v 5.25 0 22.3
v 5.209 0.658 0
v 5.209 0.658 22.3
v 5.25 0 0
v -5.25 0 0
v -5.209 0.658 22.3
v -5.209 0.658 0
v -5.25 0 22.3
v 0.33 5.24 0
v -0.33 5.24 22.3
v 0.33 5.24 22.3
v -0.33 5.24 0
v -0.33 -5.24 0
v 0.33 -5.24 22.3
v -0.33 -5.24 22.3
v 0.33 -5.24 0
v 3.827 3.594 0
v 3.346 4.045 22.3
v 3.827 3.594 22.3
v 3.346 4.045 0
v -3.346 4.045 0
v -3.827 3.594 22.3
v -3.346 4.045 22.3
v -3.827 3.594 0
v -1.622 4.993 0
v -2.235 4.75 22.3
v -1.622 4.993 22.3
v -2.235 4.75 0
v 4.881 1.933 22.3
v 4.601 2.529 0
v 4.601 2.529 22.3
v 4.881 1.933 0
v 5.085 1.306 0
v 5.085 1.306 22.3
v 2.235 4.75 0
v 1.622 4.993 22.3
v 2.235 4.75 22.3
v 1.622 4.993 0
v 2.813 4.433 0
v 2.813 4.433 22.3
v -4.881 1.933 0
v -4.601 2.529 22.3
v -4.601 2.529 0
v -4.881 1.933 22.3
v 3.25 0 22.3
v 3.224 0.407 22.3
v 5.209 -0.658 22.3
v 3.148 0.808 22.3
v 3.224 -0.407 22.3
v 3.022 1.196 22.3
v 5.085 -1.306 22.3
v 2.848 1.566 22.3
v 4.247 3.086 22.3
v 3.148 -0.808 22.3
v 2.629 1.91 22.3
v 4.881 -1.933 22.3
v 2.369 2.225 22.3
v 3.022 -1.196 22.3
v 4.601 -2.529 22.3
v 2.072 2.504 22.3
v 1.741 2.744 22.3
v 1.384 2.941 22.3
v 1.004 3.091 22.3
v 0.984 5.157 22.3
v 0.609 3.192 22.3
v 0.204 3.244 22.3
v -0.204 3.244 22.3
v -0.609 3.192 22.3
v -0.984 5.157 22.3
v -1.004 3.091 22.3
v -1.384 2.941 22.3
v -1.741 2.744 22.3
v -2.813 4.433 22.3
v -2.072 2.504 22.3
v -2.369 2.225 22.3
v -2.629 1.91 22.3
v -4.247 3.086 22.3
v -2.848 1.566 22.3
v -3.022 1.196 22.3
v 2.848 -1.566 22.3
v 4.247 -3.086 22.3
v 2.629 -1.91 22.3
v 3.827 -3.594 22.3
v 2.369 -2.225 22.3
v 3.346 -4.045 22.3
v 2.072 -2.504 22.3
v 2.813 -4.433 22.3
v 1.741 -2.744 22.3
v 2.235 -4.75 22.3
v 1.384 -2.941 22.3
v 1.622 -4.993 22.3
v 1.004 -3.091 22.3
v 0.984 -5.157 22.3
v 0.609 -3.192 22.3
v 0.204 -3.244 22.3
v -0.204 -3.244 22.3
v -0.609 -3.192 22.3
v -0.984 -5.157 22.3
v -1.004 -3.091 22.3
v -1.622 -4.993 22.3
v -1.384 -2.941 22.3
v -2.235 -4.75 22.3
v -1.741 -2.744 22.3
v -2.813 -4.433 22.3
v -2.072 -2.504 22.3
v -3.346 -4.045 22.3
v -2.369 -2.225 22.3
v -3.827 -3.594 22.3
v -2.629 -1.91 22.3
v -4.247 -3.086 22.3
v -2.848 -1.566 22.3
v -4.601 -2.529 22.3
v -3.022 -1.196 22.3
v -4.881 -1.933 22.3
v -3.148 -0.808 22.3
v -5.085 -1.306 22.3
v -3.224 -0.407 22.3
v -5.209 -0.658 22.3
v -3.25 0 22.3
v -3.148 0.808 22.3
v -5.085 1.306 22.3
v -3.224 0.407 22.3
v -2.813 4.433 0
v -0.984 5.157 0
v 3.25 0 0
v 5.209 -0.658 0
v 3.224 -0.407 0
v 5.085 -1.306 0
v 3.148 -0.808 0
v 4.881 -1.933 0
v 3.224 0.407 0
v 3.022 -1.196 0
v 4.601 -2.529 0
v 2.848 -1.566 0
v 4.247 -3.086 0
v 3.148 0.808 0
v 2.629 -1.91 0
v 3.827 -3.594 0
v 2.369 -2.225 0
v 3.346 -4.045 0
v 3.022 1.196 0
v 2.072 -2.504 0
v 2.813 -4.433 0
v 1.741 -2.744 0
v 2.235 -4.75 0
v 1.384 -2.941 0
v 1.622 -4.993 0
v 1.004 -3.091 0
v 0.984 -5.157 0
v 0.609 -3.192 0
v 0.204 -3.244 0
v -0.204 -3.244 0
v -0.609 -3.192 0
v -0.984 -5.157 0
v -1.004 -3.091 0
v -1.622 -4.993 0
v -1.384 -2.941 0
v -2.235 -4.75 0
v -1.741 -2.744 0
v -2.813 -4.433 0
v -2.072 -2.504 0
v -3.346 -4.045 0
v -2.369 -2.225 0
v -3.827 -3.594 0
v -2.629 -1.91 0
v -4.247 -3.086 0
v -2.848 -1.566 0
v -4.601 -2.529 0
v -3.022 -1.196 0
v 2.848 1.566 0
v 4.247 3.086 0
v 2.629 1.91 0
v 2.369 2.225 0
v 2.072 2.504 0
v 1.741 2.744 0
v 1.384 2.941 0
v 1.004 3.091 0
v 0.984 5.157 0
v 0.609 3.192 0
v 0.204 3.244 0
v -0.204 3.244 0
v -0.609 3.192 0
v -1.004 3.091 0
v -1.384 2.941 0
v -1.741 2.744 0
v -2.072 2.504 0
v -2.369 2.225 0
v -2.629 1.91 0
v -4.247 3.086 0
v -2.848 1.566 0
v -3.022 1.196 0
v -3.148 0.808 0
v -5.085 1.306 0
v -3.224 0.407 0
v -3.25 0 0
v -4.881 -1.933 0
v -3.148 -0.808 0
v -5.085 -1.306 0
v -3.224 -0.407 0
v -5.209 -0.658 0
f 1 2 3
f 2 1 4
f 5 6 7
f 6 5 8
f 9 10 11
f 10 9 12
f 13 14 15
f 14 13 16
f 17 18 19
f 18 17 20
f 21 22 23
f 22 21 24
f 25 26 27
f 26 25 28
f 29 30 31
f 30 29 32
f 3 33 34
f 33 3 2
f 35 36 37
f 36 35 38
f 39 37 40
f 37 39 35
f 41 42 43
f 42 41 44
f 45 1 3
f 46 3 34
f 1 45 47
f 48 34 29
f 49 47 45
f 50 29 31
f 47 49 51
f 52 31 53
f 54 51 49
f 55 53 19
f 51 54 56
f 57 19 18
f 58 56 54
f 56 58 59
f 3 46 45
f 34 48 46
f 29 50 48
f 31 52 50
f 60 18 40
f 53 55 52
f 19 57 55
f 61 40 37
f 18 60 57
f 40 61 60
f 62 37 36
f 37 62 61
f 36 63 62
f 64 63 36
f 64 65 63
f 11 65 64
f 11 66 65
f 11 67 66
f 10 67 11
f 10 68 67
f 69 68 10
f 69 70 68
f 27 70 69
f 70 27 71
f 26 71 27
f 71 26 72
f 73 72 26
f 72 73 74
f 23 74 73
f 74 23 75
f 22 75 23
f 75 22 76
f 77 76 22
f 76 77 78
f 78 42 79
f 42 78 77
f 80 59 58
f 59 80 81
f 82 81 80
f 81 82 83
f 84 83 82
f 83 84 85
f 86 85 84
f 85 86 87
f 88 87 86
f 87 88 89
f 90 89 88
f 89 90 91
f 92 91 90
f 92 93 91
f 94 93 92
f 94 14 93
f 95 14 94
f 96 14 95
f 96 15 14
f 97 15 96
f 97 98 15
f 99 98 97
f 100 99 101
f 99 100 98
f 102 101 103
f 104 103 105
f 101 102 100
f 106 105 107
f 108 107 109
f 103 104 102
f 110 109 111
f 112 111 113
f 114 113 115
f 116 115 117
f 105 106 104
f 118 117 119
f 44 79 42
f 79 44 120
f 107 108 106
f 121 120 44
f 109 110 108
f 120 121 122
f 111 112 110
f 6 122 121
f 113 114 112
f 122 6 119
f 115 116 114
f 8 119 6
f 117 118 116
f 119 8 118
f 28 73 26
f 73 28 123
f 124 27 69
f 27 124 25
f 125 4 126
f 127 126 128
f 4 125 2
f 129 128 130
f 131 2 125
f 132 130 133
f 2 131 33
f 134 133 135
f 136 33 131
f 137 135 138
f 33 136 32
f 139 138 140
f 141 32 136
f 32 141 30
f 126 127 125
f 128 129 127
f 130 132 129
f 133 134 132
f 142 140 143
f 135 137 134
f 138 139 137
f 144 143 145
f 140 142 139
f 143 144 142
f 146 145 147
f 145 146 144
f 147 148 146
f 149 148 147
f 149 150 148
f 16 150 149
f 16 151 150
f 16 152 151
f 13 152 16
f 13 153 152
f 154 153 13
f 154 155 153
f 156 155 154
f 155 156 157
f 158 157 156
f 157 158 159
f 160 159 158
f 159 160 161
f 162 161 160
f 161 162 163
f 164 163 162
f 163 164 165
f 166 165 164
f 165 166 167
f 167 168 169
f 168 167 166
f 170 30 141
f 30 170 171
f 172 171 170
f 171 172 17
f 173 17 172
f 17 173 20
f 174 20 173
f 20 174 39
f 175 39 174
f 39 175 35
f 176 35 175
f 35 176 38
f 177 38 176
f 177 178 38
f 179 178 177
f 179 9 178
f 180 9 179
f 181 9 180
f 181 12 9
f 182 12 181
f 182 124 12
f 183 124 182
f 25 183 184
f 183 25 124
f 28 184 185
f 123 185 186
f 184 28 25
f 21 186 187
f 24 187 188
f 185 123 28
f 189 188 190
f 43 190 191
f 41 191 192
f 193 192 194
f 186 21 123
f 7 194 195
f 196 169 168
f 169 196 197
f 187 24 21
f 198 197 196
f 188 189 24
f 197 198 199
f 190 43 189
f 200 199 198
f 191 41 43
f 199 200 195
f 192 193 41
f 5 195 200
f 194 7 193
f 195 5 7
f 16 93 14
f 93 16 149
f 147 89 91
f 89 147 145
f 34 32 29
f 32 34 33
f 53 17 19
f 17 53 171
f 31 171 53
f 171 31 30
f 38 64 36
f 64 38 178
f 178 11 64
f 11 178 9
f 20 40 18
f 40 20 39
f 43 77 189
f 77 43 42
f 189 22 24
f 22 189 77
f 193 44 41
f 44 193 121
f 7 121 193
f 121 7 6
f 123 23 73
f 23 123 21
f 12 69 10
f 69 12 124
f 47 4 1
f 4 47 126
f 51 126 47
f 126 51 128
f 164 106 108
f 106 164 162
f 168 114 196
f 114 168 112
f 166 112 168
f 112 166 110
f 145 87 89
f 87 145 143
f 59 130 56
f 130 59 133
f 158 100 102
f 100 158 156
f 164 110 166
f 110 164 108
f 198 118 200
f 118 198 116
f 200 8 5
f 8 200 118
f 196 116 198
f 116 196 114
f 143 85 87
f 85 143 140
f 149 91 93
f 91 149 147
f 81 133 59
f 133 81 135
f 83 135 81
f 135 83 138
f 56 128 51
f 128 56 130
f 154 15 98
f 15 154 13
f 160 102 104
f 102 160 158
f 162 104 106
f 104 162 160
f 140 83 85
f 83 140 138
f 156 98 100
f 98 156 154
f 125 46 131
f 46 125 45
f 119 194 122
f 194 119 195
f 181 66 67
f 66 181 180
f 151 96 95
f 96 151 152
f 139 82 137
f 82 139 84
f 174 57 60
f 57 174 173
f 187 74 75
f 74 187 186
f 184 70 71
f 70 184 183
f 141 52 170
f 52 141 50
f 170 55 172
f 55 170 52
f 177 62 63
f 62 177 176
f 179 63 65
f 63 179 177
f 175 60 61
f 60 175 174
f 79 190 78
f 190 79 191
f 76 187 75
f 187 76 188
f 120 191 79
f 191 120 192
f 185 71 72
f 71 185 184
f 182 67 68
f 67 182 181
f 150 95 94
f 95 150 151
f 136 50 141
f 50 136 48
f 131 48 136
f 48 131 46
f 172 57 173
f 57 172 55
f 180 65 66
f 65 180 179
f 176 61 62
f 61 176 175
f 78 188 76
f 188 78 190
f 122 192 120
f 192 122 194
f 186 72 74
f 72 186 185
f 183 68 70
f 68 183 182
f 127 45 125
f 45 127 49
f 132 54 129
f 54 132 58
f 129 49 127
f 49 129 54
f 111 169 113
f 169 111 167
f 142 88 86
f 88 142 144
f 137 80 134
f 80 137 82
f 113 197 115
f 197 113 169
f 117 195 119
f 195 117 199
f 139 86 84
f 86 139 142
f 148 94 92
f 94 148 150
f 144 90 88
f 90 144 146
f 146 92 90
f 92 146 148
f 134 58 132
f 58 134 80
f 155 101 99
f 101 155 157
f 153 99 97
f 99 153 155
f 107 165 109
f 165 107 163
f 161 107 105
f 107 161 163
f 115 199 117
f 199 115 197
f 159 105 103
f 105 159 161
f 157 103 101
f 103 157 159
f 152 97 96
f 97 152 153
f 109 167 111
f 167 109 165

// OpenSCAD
// file: ../parameters.scad
maximum_printable_size = 150;

layer_thickness = 0.3;
global_clearance = 0.5;


// scale parameters
tower_height = 220;
mid_base_width = 400;
mid_base_height = 160;
mid_base_length = 300;
base_mid_base_hinge_offset = 50;
counterweight_length = 200;


//Screw diameter and nut for M10 [mm]
M10_screw_diameter = 10.4;
M10_head_height = 10;
M10_head_diameter = 16+0.5;
M10_nut_height = 10.5;
M10_nut_diameter = 25.5;
M10_nut_pocket = 22.3;

//Screw diameter for M8 [mm]
M8_screw_diameter = 8.6;
M8_head_height = 8;
M8_head_diameter = 13.5;
M8_nut_height = 7.5;
M8_square_nut_thin_height = 4.5;
M8_nut_diameter = 14.4 + 0.5;
M8_nut_pocket = 13 + 0.5;
M8_washer_diameter = 16;
M8_washer_thickness = 1.5;


//Screw diameter and nut for M6 [mm]
M6_screw_diameter=6.5;
M6_head_diameter = 10+0.5;
M6_head_height = 6;
M6_nut_height = 4.9;
M6_nut_diameter = 11.8;
M6_nut_pocket = 10.4;
M6_square_nut_height = 3;
M6_square_nut_diameter = 10;
M6_washer_thickness = 1.6;

//Screw diameter and nut for M5 [mm]
M5_screw_diameter=5.5;
M5_head_height = 5;
M5_head_diameter = 13+0.5;
M5_nut_height = 4.5;
M5_nut_diameter = 9.4;
M5_nut_pocket = 8.4;

//Screw diameter and nut for M4 [mm]
M4_screw_diameter=4.5;
M4_screw_head_height = 4;
M4_nut_height = 3.2;
M4_nut_diameter = 8.4;
M4_nut_pocket = 7.5;

//Screw diameter and nut for M3 [mm]
M3_screw_diameter = 3.2;
M3_nut_height = 2.7;
M3_nut_diameter = 6.6;
M3_nut_pocket = 5.6;
M3_screw_head_height = 3;

//Screw diameter and nut for M2,5 [mm]
M2_5_screw_diameter = 2.7;
M2_5_nut_height = 2.3;
M2_5_nut_diameter = 6;
M2_5_nut_pocket = 5.5;

// kulove lozisko

bearing_efsm_08_h = 33+1;
bearing_efsm_08_m = 22;
bearing_efsm_08_db = 18;
bearing_efsm_08_ag = 10.5;
bearing_efsm_08_n = M4_screw_diameter;
bearing_efsm_08_a1 = 5.5;
bearing_efsm_08_d = 8.25;
bearing_efsm_08_B = 8; // ball height

bearing_efsm_10_h = 38+1;
bearing_efsm_10_m = 26;
bearing_efsm_10_db = 21.9;
bearing_efsm_10_ag = 12+0.2;
bearing_efsm_10_n = M5_screw_diameter;
bearing_efsm_10_a1 = 6.5;
bearing_efsm_10_d = 10.25;


bearing_efsm_12_width = 40+1;
bearing_efsm_12_h = bearing_efsm_12_width;
bearing_efsm_12_boltd = 28/2; // polovina vzdalenosti mezi srouby
bearing_efsm_12_m = bearing_efsm_12_boltd*2;
bearing_efsm_12_db = 25;
bearing_efsm_12_ag = 13;
bearing_efsm_12_a1 = 7;
bearing_efsm_12_n = M5_screw_diameter;
bearing_efsm_12_d = 12.15;
bearing_efsm_12_B = 10; // ball height
bearing_efsm_space = 1;

bearing_efsm_17_width = 54+1;
bearing_efsm_17_h = bearing_efsm_17_width;
bearing_efsm_17_boltd = 38/2; // polovina vzdalenosti mezi srouby
bearing_efsm_17_m = bearing_efsm_17_boltd*2;
bearing_efsm_17_db = 35;
bearing_efsm_17_ag = 18;
bearing_efsm_17_n = M6_screw_diameter;
bearing_efsm_17_a1 = 10;
bearing_efsm_17_B = 17; // ball height

//limcove lozisko
bearing_EFOM_10_L=26; //celkova sirka zakladny
bearing_EFOM_10_d1=10.3;//diametr otvoru real=10 mm
bearing_EFOM_10_dB=22;//diametr vystupku pro ulozeni lozika
bearing_EFOM_10_H=52;//celková delka zakladny
bearing_EFOM_10_J=36;// hole pitch
bearing_EFOM_10_A1=6.5;//vyska pouzdra
bearing_EFOM_10_Ag=12;//celkova vyska
bearing_EFOM_10_N1=5;//sirka otvoru pro sroub
bearing_EFOM_10_N2=8;//delka otvoru pro sroub
bearing_EFOM_10_m=36;//roztec der pro sroub
bearing_EFOM_10_h=9;//vyska lozika


608_bearing_outer_diameter = 22.3;
608_bearing_inner_diameter = 16;
608_bearing_thickness = 7.1;


// 20 KG servo parameters

servo_20kg_axis_offset = 9.375; // jak je osa mimo stredu
servo_20kg_body_x = 42;
servo_20kg_body_y = 21;
servo_20kg_body_z = 40;
servo_20kg_thread_x = 49/2;
servo_20kg_thread_y = 10/2;
servo_20kg_body_below = 10; // jak hluboko je tělo serva pod drzaky na srouby
servo_20kg_below = 25.8; // jak hluboko je páka serva pod drzaky na srouby

servo_20kg_bolt_d = 2.5+0.3;
servo_20kg_nut_d = 5+0.3;


//strain gauge
strain_gauge_width = 12.7;
strain_gauge_length = 75.1;
strain_gauge_screw_distance = 10;

//ALU profile
ALU_profile_width = 30.5;
ALU_profile_holder_wall_thickness = 3;
ALU_profile_groove_width = 8;

//pillow block bearing
//https://www.igus.eu/product/372
//Part no. KSTM-08
KSTM08_screws_distance = 33;         //m
KSTM08_screws_holes_diameter = 4.5;  //d2
KSTM08_flange_thickness = 6;         //h3
KSTM08_case_width = 9;               //C1
KSTM08_case_length = 47;             //a
KSTM08_ball_width = 12;              //B
KSTM08_ball_hole_diameter = 7.85;    //d1


//ložiska pro malý rotor
bearing_outer_diameter = 10.2;    // Rozměr B1 v nákresu s přídavkem na toleranci otvoru
bearing_thickness = 4;        // Rozměr B2 v nákresu
//bearing_shaft_length = 19.5;    // Rozměr B3 v nákresu, Originalni hodnota 19.5
bearing_shaft_length = 20;    // Rozměr B3 v nákresu


//parametry víčka s telemetrickou anténou
S01_sila_materialu=1.2;
S01_vyska_horni_zavit=10;
S01_hloubka_zavitu=4;
S01_prumer_vnitrni=50;
LO_spodni_prumer=17.2;
LO_vyska_bez_krytu=15;
S01_tolerance_zavit=1.5;
R01_vyska_prekryti_statoru=10;

g3_0_cone1 = 70;
g3_0_srcew_dist = 55;
// main file
include <../parameters.scad>

module 888_5010() {
    difference() {
        cylinder(d=M6_screw_diameter+4, h=ALU_profile_width+ALU_profile_holder_wall_thickness*2-608_bearing_thickness*2, $fn=50);
        
        translate([0, 0, -ALU_profile_holder_wall_thickness])
        cylinder(d=M6_screw_diameter, h=ALU_profile_width+ALU_profile_holder_wall_thickness*4, $fn=50);
    }
}

888_5010();
